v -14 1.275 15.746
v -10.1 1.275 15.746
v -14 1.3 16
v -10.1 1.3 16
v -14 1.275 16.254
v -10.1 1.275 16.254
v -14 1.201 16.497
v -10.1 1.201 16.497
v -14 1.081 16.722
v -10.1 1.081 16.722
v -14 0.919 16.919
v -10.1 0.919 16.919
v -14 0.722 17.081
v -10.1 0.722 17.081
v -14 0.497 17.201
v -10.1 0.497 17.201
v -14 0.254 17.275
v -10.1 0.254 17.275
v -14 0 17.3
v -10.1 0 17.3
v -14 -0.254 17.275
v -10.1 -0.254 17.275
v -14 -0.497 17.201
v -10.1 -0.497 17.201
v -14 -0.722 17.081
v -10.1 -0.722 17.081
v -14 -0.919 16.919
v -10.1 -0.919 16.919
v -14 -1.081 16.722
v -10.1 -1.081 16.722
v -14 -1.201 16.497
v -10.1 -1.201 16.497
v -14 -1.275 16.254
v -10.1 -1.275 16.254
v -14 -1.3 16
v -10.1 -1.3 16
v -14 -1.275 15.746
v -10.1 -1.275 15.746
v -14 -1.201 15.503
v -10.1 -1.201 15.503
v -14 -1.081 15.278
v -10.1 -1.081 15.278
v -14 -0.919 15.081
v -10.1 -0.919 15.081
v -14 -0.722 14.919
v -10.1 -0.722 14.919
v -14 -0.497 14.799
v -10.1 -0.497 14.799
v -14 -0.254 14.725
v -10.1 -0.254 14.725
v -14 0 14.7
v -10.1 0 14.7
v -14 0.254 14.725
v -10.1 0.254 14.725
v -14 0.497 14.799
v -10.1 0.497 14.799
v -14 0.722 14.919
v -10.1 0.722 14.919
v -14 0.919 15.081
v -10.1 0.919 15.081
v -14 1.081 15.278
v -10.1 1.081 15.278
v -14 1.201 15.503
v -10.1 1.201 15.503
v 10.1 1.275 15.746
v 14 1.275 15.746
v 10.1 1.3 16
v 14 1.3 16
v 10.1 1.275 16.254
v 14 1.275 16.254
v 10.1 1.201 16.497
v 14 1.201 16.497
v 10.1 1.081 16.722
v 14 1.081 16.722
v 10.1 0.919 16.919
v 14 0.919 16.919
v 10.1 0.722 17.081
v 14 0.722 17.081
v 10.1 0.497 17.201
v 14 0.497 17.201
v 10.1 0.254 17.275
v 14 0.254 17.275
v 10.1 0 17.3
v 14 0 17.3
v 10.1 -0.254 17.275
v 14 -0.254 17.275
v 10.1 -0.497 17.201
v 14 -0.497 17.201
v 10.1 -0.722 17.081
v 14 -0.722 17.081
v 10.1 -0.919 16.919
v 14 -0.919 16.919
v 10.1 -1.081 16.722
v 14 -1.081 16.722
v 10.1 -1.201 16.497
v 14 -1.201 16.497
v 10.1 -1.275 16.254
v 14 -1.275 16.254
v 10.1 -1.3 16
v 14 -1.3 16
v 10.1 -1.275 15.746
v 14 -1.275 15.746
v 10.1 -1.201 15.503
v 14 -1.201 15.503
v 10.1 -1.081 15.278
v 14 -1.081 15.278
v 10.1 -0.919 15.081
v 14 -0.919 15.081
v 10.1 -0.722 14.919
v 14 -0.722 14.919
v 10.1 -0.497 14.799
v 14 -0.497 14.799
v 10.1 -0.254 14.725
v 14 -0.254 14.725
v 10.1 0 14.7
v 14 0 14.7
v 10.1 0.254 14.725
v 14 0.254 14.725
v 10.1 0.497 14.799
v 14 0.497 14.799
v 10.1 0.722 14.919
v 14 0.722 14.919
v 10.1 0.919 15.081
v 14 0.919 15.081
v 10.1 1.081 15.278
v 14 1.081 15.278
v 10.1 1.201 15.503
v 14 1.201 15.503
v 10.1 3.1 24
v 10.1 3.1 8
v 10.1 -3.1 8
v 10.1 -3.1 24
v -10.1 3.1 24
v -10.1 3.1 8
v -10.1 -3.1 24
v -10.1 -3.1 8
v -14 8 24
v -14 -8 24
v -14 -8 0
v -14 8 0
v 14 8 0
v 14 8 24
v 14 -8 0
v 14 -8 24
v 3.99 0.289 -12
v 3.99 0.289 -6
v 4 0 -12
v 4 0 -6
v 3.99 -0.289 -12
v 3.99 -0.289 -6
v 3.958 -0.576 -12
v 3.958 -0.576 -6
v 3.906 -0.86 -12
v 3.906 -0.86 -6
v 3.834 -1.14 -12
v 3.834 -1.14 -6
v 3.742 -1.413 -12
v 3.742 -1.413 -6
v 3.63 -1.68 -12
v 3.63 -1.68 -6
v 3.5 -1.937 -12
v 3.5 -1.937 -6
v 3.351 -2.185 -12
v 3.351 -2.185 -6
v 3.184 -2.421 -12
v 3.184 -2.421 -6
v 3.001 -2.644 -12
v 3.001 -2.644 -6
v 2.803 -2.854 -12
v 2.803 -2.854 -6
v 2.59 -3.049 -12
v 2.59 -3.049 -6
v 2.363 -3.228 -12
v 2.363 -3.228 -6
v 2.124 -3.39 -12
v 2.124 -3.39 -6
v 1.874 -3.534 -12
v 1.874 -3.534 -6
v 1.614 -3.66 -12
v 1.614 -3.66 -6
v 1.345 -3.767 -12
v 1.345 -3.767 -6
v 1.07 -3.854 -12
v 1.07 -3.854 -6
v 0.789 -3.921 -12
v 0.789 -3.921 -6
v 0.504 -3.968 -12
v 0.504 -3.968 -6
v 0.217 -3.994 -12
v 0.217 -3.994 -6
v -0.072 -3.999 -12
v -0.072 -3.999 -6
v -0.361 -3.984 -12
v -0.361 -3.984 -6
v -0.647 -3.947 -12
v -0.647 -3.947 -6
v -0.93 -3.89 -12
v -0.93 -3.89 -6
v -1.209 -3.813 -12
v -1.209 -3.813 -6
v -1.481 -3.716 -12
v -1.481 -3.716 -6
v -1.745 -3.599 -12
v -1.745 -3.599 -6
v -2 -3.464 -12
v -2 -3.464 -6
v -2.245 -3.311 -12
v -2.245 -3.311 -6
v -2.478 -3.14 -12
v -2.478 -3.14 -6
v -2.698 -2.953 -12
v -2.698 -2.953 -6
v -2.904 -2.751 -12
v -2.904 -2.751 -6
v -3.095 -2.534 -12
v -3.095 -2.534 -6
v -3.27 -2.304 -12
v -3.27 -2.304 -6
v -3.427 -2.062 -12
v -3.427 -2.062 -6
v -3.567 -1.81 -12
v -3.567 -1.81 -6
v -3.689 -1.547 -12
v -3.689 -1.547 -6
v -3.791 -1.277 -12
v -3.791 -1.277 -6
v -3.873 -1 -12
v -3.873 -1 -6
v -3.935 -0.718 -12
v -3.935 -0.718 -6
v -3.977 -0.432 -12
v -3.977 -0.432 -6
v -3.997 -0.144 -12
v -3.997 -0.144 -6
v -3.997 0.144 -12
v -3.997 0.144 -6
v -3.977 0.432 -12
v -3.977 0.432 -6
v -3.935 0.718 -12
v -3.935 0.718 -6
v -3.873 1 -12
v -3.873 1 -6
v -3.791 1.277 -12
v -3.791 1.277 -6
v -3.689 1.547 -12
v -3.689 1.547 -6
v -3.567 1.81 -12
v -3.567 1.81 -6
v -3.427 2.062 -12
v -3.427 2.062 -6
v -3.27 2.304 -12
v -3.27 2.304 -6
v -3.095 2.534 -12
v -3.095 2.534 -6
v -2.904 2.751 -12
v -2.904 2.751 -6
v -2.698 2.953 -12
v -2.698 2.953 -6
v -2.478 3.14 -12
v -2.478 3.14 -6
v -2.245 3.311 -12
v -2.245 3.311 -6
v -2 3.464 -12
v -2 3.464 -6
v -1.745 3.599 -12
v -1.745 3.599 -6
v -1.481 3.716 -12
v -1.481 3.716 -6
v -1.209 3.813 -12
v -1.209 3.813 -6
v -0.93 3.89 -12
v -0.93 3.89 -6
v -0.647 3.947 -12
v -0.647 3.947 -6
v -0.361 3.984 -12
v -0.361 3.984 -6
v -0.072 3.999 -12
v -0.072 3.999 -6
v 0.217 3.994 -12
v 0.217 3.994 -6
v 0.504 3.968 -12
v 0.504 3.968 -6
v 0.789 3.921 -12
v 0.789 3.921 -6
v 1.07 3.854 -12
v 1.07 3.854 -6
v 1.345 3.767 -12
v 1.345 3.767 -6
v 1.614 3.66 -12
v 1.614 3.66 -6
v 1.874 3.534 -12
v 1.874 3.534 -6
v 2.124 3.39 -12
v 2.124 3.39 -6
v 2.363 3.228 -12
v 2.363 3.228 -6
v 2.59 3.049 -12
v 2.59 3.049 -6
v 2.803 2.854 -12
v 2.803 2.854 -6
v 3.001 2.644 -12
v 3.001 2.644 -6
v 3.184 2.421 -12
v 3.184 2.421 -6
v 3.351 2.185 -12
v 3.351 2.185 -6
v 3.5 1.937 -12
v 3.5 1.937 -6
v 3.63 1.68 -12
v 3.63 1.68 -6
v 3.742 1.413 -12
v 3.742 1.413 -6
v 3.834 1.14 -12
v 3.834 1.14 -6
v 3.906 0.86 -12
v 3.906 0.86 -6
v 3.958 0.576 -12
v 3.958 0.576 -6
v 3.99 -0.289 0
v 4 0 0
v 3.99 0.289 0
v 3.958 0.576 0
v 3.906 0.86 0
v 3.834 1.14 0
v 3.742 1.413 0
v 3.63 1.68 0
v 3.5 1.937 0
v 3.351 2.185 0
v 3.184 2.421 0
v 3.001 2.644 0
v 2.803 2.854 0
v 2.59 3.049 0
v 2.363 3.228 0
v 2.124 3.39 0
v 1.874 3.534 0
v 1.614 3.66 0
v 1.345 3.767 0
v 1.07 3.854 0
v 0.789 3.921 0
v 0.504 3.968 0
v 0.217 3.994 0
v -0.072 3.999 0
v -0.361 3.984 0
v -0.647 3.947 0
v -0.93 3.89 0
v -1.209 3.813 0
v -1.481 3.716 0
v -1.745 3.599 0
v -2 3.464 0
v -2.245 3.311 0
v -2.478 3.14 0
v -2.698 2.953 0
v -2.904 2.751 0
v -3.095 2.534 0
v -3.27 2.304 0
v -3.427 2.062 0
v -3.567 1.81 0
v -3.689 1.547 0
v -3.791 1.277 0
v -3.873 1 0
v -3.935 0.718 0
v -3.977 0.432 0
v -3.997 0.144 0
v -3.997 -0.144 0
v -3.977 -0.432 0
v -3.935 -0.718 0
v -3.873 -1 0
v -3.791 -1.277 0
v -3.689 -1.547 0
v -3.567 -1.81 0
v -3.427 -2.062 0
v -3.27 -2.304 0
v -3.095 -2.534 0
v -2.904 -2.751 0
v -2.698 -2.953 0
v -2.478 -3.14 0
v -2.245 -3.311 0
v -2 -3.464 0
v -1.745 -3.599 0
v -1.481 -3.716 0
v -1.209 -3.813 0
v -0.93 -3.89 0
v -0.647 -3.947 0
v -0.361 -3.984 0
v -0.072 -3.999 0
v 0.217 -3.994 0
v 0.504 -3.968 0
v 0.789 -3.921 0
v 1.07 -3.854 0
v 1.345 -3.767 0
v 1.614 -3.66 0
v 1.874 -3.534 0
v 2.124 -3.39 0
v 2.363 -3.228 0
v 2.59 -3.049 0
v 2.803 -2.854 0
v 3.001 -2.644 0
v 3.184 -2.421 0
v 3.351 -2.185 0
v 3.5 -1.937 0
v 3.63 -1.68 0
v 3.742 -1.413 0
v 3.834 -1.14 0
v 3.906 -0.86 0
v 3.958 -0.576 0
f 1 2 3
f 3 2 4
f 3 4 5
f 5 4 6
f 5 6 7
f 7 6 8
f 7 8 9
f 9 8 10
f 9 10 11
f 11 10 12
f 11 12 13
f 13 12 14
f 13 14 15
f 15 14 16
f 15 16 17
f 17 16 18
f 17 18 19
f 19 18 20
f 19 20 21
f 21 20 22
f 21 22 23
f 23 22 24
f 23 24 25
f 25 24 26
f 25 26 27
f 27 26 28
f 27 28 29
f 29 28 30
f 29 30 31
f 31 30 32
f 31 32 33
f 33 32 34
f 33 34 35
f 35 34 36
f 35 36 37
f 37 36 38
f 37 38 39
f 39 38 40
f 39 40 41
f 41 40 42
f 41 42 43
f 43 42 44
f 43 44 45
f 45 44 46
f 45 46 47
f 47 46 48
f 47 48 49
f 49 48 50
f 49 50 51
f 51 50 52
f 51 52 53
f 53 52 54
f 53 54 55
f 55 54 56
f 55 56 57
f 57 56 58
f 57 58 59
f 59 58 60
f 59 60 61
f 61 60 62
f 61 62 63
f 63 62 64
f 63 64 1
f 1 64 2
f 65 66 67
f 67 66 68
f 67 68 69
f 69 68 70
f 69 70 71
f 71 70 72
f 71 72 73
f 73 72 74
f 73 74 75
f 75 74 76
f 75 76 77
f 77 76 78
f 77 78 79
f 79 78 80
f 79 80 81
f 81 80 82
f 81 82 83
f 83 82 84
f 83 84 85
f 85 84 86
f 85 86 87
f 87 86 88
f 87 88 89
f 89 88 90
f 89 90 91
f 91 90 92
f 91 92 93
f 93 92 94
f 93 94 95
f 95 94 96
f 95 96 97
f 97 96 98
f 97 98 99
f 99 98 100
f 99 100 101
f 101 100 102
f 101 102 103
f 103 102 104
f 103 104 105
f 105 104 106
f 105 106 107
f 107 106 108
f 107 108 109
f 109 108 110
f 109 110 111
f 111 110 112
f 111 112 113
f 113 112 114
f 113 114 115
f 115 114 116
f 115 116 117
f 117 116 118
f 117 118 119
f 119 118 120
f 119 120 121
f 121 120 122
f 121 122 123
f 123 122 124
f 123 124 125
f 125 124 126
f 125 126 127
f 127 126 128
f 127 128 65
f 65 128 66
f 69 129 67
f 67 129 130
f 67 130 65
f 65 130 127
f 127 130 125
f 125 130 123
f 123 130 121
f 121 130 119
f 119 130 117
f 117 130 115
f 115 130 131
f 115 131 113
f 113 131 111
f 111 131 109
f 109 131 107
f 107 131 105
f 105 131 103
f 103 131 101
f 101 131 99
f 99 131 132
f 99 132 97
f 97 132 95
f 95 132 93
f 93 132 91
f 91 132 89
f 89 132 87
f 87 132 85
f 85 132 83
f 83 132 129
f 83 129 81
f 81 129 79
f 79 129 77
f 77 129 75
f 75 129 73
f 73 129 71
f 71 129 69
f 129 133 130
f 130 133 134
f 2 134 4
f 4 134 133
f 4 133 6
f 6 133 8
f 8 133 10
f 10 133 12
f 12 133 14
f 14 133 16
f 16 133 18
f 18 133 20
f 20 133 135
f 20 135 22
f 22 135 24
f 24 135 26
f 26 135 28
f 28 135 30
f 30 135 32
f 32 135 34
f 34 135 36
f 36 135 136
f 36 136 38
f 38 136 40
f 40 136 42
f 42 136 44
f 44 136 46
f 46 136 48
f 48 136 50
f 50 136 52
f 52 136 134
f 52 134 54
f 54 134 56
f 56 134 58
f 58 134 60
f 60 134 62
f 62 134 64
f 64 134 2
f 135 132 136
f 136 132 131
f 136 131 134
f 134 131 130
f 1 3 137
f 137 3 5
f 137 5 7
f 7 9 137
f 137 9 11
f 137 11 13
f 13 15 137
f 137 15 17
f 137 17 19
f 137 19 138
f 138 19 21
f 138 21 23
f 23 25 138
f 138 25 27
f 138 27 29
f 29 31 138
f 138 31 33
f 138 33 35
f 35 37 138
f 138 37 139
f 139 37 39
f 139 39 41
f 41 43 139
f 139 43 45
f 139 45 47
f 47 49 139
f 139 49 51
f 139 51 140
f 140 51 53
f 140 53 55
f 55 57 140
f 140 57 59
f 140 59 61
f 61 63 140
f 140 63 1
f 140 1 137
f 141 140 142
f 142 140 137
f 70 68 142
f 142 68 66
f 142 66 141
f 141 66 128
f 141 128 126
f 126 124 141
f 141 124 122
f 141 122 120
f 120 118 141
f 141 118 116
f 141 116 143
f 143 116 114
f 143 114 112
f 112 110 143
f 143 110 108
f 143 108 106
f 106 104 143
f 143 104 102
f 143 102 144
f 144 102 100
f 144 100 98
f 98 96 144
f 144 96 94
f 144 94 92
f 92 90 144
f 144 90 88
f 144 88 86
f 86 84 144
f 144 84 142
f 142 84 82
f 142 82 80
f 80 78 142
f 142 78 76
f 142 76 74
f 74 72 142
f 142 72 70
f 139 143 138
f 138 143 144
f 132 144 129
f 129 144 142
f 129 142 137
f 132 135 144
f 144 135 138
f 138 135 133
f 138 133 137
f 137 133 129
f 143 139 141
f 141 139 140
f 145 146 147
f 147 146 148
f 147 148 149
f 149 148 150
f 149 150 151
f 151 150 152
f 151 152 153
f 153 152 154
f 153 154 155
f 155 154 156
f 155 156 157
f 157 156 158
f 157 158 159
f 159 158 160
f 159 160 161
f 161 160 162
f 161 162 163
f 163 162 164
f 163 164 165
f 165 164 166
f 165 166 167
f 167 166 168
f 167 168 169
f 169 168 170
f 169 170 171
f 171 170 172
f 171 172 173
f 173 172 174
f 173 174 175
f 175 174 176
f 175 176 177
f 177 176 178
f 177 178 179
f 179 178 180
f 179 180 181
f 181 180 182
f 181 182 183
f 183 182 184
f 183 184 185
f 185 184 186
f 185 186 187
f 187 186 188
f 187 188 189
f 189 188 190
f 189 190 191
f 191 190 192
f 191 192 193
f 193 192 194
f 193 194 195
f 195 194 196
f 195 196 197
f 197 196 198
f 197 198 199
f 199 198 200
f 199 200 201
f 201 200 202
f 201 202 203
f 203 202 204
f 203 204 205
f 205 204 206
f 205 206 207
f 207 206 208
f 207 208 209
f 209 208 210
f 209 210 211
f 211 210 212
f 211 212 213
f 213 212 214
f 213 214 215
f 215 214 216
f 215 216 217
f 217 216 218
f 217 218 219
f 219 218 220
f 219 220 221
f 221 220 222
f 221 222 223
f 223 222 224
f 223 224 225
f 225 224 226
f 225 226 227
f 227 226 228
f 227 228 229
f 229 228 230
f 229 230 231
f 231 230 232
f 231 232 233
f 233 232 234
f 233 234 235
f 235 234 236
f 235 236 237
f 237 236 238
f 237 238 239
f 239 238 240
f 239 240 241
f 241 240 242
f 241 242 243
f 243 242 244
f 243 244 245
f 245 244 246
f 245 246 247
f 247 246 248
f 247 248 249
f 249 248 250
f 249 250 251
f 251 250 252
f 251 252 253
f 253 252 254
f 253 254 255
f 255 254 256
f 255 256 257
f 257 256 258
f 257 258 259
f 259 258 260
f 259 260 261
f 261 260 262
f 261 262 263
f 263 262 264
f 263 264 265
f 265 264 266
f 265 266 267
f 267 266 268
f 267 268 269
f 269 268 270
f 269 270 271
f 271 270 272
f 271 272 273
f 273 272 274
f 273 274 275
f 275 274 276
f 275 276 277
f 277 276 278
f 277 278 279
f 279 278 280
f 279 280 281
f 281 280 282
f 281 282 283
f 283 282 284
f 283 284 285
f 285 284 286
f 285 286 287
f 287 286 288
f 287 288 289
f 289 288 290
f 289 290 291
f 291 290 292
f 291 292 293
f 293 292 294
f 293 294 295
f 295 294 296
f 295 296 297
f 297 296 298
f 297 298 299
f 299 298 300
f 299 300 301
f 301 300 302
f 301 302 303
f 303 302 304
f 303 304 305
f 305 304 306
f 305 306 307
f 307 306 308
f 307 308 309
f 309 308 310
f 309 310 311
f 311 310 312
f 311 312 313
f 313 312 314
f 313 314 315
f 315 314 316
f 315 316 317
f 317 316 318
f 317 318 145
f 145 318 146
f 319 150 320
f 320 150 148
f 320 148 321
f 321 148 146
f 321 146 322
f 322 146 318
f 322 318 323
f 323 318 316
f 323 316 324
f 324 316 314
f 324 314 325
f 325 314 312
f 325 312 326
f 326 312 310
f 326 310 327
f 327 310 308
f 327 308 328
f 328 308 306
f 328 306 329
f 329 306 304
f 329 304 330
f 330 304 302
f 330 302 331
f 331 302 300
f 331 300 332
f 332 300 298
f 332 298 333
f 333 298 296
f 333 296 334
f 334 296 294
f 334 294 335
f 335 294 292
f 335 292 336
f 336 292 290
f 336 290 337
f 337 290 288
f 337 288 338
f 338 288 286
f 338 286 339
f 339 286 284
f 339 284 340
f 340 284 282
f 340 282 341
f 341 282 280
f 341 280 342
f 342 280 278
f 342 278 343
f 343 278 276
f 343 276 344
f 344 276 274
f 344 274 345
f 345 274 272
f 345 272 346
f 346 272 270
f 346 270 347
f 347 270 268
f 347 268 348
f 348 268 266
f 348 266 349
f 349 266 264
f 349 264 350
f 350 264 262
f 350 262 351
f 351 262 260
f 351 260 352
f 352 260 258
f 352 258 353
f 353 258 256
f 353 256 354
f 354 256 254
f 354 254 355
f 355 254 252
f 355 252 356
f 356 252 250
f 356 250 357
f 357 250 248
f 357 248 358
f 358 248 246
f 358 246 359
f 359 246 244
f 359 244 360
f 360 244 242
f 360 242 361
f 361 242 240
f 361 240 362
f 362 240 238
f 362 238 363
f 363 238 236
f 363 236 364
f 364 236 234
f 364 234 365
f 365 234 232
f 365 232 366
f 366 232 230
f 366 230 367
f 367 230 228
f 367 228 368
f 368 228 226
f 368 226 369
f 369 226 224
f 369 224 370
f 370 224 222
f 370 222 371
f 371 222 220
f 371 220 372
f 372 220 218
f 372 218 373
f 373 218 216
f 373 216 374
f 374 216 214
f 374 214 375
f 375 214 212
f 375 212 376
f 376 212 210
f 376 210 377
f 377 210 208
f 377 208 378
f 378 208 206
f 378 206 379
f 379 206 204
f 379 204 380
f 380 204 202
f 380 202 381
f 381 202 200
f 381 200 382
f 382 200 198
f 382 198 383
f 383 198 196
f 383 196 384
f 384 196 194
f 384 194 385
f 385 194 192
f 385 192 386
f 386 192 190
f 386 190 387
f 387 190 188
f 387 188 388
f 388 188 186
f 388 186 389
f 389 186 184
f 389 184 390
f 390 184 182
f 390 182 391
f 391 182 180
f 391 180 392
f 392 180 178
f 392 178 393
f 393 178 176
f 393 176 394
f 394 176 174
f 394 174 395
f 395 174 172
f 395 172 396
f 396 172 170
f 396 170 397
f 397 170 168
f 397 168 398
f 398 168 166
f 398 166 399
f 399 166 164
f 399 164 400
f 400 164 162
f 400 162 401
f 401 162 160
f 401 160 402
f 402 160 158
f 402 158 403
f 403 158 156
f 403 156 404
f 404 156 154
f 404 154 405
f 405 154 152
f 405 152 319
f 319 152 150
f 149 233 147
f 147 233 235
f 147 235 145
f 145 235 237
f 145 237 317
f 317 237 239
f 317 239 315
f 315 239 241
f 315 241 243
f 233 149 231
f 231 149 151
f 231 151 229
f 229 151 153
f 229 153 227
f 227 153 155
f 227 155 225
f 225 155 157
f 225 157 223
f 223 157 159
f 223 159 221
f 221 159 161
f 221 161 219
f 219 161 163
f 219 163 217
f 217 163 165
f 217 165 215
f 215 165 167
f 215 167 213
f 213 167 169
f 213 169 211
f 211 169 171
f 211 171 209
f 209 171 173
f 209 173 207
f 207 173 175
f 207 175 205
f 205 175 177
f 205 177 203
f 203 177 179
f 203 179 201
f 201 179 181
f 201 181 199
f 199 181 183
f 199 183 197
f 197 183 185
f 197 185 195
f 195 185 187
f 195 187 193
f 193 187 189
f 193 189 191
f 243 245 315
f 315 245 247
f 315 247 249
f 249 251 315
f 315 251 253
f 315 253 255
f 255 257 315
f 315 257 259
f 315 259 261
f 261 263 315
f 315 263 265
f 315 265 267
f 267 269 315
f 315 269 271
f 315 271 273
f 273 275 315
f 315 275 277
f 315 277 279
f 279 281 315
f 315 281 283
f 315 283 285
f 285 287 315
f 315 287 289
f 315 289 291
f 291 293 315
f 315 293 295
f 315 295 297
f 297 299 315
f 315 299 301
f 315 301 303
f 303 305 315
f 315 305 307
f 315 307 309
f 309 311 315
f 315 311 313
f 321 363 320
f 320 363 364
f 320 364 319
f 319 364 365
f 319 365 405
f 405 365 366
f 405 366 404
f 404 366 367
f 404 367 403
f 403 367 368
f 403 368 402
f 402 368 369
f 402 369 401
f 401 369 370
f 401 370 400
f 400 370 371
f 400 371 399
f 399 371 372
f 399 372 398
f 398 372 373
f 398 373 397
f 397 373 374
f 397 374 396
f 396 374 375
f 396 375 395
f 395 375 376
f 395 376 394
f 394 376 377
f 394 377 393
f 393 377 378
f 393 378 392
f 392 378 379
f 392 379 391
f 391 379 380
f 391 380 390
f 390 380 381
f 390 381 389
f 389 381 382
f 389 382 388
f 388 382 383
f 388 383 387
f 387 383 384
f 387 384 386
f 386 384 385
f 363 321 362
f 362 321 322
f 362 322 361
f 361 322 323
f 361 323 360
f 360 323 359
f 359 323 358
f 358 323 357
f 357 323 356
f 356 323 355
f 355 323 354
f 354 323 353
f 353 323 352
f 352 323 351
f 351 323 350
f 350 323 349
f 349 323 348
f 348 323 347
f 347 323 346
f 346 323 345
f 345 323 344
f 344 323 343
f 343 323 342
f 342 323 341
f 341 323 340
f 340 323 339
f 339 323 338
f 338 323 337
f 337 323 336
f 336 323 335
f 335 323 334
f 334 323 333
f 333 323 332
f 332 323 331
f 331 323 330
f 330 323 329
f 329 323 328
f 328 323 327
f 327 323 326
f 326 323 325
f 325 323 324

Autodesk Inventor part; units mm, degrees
ref_plane "YZ Plane" through (0, 0, 0) normal (1, 0, 0) x (0, 1, 0)
ref_plane "XZ Plane" through (0, 0, 0) normal (0, 1, 0) x (-1, 0, 0)
sketch "Skizze1" plane through (0, 0, 0) normal (0, 0, 1) x (1, 0, 0)
  line L0 (-14, -8) -> (14, -8)
  line L1 (14, -8) -> (14, 8)
  line L2 (14, 8) -> (-14, 8)
  line L3 (-14, 8) -> (-14, -8)
extrude "Extrusion1" add sketch "Skizze1" along normal blind 24
sketch "Skizze2" plane through (0, 0, 0) normal (0, 0, 1) x (1, 0, 0)
  circle A0 centre (0, 0) radius 4
extrude "Extrusion2" add sketch "Skizze2" against normal blind 12 separate body
ref_plane "Arbeitsebene1" through (0, 0, 24) normal (0, 0, 1) x (1, 0, 0)
sketch "Skizze3" plane through (0, 0, 24) normal (0, 0, 1) x (1, 0, 0)
  line L0 (-10.1, -3.1) -> (10.1, -3.1)
  line L1 (10.1, -3.1) -> (10.1, 3.1)
  line L2 (10.1, 3.1) -> (-10.1, 3.1)
  line L3 (-10.1, 3.1) -> (-10.1, -3.1)
extrude "Extrusion3" cut sketch "Skizze3" against normal blind 16 bodies 1
sketch "Skizze4" plane through (0, 0, 0) normal (1, 0, 0) x (0, 1, 0)
  circle A0 centre (0, 16) radius 1.3
extrude "Extrusion4" cut sketch "Skizze4" along normal mid plane 30 bodies 1
properties part number "Idler_Klemme"
